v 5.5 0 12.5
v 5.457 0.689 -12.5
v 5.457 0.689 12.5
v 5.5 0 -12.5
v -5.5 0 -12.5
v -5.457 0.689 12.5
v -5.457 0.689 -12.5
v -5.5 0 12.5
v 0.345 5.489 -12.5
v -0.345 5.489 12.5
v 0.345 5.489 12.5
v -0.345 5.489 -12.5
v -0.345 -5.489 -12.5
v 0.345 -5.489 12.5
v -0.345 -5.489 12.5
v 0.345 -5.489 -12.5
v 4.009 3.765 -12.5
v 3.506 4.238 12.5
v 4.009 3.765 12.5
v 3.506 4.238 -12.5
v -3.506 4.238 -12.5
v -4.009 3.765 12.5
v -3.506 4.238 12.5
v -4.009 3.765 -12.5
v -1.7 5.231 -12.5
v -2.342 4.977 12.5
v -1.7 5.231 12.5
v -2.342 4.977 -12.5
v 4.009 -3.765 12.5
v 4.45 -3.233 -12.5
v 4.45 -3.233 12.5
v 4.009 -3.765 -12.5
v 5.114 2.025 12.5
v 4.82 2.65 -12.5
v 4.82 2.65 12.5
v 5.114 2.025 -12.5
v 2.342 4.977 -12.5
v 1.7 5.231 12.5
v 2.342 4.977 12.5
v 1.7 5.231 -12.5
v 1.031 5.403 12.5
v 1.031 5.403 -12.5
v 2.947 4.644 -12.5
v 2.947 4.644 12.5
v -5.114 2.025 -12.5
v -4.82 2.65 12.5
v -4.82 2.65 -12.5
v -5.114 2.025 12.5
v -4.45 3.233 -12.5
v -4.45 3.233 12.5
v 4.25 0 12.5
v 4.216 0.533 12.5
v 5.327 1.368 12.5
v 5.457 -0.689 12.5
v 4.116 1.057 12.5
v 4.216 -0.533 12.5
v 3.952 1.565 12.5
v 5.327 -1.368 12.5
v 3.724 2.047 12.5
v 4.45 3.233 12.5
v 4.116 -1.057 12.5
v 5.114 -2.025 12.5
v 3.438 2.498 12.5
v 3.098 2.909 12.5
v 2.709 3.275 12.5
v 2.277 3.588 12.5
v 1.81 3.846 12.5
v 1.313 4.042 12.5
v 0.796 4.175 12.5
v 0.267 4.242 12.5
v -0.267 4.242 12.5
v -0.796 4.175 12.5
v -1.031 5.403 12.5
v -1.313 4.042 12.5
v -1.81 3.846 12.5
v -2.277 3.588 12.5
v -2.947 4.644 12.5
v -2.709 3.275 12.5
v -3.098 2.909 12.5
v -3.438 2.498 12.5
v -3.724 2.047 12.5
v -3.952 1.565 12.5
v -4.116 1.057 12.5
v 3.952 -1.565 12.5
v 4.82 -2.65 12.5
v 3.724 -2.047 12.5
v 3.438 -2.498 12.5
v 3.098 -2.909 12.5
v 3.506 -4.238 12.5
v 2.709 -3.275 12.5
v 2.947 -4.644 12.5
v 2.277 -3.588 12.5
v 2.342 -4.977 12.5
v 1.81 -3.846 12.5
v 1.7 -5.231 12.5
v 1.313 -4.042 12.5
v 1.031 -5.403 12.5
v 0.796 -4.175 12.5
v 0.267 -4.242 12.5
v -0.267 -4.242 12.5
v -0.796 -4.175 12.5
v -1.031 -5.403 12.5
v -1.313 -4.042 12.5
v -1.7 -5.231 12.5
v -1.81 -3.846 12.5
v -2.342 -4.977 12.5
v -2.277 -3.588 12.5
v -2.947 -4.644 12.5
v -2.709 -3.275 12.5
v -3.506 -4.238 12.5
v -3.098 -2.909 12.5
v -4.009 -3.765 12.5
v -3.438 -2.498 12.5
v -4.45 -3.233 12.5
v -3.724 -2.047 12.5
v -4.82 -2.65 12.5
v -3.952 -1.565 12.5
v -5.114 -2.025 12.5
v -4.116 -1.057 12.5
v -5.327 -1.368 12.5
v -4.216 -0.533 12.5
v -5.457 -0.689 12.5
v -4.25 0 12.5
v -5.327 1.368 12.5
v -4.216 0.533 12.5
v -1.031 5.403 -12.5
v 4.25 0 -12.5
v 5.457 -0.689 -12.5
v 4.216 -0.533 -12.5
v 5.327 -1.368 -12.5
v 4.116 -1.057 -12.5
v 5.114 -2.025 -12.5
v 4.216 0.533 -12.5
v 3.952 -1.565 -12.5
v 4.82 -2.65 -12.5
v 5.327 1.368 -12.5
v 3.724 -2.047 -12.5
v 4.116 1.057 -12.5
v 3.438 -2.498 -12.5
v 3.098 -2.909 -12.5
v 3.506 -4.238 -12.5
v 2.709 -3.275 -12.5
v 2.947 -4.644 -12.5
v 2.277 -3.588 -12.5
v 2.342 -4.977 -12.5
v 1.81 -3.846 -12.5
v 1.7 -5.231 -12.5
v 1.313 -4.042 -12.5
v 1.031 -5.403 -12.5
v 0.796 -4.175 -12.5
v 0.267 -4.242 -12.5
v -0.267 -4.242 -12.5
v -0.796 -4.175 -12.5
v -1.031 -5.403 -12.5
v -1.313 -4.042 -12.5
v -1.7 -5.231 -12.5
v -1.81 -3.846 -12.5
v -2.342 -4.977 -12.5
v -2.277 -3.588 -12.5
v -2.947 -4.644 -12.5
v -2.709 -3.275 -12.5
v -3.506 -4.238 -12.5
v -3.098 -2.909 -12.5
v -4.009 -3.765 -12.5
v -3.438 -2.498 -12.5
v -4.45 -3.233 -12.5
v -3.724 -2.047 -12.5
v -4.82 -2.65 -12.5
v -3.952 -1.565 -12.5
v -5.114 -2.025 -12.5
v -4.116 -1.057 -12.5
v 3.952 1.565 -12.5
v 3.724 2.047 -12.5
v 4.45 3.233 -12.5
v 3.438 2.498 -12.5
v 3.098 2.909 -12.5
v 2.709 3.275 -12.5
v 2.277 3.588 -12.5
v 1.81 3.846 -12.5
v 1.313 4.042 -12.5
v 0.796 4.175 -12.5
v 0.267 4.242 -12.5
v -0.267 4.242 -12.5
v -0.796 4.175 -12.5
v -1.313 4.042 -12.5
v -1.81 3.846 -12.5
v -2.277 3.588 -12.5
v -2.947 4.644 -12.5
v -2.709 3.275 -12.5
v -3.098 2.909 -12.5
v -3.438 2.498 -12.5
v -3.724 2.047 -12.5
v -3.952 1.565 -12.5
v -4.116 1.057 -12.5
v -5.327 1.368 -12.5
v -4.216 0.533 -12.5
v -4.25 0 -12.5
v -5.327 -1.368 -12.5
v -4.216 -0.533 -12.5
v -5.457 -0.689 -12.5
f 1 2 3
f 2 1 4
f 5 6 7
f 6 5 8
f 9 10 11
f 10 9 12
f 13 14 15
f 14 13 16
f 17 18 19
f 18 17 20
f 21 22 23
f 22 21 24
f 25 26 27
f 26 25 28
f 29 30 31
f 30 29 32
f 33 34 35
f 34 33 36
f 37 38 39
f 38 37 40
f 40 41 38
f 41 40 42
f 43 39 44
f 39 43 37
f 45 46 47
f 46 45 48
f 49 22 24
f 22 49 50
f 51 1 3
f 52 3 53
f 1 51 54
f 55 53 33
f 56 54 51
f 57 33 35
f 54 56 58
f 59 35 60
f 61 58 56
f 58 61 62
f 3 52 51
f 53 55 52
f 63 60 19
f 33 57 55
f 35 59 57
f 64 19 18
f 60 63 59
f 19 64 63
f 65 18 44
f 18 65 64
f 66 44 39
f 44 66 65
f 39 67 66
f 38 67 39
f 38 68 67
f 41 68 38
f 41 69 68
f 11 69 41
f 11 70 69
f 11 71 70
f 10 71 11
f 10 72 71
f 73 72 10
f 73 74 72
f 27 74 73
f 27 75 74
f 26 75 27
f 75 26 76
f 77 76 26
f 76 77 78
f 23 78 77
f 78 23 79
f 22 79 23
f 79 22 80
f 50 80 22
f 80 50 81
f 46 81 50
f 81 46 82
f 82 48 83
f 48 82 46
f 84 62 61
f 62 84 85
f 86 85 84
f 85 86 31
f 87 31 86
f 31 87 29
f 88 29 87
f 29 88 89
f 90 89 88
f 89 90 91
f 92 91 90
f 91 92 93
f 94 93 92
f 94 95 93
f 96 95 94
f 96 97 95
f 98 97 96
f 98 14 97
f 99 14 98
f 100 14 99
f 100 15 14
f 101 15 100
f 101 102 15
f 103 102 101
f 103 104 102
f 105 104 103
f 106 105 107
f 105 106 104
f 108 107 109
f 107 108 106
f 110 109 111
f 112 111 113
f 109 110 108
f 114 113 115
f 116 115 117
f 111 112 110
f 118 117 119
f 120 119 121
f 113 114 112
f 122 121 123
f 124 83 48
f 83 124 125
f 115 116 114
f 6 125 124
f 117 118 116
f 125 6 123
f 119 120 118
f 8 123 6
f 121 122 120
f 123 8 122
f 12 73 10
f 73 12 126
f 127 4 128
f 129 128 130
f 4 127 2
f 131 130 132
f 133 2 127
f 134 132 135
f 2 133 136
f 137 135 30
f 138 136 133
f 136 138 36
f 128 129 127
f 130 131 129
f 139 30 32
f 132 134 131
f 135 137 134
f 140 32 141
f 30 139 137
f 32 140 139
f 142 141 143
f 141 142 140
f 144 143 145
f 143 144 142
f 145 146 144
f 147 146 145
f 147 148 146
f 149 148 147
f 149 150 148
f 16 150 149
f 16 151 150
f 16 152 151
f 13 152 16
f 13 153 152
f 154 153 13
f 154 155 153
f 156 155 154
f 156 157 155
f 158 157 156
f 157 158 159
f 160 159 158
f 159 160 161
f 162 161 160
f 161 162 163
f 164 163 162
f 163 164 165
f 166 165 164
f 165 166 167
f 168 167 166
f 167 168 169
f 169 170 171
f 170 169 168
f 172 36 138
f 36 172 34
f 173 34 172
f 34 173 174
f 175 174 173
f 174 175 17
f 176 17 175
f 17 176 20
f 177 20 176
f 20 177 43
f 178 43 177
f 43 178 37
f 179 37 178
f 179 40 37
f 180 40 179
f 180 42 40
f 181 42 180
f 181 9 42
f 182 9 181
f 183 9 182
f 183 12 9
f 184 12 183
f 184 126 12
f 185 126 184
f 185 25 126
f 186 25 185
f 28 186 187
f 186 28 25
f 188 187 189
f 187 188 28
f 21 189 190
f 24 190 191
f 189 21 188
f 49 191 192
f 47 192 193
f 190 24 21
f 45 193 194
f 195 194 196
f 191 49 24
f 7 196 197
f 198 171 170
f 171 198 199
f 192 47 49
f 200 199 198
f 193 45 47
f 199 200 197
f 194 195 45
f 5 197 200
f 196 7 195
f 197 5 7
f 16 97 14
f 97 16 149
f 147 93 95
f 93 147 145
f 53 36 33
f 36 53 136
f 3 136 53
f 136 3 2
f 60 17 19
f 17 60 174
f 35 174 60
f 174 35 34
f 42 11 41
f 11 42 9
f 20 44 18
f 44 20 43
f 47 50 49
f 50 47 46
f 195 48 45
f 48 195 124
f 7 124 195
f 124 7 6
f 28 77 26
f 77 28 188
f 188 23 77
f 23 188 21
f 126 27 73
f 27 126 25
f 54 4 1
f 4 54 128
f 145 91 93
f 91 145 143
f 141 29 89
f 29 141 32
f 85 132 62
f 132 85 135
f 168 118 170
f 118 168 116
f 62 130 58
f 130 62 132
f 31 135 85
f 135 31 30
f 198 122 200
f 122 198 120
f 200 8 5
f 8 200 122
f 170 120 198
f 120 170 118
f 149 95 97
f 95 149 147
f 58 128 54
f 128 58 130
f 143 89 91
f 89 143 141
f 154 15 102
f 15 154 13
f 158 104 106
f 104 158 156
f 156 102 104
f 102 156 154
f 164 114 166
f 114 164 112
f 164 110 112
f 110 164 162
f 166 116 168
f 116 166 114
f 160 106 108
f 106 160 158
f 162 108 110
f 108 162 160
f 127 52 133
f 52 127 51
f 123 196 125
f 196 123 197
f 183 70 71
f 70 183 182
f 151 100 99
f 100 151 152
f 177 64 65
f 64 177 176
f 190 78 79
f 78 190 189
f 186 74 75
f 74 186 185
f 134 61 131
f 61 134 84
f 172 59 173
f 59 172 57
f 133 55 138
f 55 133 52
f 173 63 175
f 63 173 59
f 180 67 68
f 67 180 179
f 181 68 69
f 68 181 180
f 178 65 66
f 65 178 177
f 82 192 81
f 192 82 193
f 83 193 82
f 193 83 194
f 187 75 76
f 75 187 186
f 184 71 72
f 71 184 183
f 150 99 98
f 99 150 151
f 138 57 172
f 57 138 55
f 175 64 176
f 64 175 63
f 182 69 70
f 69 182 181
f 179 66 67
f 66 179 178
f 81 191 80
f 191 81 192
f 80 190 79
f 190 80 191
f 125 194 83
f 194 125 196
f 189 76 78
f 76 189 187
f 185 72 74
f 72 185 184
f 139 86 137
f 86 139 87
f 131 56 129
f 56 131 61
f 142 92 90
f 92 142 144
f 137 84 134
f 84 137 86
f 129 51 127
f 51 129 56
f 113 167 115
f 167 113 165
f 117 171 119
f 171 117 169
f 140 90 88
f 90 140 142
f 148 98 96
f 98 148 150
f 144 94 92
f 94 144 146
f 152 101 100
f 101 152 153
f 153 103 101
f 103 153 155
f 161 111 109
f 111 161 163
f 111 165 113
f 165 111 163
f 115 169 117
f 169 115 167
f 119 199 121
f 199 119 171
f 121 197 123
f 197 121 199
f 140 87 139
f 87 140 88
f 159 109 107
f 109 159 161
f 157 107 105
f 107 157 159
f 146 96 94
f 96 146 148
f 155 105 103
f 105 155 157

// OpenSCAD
$fn = 50;


difference() {
	union() {
		translate(v = [0, 0, -12.5000000000]) {
			cylinder(h = 25, r = 5.5000000000);
		}
	}
	union() {
		translate(v = [0, 0, -100.0000000000]) {
			cylinder(h = 200, r = 4.2500000000);
		}
	}
}
